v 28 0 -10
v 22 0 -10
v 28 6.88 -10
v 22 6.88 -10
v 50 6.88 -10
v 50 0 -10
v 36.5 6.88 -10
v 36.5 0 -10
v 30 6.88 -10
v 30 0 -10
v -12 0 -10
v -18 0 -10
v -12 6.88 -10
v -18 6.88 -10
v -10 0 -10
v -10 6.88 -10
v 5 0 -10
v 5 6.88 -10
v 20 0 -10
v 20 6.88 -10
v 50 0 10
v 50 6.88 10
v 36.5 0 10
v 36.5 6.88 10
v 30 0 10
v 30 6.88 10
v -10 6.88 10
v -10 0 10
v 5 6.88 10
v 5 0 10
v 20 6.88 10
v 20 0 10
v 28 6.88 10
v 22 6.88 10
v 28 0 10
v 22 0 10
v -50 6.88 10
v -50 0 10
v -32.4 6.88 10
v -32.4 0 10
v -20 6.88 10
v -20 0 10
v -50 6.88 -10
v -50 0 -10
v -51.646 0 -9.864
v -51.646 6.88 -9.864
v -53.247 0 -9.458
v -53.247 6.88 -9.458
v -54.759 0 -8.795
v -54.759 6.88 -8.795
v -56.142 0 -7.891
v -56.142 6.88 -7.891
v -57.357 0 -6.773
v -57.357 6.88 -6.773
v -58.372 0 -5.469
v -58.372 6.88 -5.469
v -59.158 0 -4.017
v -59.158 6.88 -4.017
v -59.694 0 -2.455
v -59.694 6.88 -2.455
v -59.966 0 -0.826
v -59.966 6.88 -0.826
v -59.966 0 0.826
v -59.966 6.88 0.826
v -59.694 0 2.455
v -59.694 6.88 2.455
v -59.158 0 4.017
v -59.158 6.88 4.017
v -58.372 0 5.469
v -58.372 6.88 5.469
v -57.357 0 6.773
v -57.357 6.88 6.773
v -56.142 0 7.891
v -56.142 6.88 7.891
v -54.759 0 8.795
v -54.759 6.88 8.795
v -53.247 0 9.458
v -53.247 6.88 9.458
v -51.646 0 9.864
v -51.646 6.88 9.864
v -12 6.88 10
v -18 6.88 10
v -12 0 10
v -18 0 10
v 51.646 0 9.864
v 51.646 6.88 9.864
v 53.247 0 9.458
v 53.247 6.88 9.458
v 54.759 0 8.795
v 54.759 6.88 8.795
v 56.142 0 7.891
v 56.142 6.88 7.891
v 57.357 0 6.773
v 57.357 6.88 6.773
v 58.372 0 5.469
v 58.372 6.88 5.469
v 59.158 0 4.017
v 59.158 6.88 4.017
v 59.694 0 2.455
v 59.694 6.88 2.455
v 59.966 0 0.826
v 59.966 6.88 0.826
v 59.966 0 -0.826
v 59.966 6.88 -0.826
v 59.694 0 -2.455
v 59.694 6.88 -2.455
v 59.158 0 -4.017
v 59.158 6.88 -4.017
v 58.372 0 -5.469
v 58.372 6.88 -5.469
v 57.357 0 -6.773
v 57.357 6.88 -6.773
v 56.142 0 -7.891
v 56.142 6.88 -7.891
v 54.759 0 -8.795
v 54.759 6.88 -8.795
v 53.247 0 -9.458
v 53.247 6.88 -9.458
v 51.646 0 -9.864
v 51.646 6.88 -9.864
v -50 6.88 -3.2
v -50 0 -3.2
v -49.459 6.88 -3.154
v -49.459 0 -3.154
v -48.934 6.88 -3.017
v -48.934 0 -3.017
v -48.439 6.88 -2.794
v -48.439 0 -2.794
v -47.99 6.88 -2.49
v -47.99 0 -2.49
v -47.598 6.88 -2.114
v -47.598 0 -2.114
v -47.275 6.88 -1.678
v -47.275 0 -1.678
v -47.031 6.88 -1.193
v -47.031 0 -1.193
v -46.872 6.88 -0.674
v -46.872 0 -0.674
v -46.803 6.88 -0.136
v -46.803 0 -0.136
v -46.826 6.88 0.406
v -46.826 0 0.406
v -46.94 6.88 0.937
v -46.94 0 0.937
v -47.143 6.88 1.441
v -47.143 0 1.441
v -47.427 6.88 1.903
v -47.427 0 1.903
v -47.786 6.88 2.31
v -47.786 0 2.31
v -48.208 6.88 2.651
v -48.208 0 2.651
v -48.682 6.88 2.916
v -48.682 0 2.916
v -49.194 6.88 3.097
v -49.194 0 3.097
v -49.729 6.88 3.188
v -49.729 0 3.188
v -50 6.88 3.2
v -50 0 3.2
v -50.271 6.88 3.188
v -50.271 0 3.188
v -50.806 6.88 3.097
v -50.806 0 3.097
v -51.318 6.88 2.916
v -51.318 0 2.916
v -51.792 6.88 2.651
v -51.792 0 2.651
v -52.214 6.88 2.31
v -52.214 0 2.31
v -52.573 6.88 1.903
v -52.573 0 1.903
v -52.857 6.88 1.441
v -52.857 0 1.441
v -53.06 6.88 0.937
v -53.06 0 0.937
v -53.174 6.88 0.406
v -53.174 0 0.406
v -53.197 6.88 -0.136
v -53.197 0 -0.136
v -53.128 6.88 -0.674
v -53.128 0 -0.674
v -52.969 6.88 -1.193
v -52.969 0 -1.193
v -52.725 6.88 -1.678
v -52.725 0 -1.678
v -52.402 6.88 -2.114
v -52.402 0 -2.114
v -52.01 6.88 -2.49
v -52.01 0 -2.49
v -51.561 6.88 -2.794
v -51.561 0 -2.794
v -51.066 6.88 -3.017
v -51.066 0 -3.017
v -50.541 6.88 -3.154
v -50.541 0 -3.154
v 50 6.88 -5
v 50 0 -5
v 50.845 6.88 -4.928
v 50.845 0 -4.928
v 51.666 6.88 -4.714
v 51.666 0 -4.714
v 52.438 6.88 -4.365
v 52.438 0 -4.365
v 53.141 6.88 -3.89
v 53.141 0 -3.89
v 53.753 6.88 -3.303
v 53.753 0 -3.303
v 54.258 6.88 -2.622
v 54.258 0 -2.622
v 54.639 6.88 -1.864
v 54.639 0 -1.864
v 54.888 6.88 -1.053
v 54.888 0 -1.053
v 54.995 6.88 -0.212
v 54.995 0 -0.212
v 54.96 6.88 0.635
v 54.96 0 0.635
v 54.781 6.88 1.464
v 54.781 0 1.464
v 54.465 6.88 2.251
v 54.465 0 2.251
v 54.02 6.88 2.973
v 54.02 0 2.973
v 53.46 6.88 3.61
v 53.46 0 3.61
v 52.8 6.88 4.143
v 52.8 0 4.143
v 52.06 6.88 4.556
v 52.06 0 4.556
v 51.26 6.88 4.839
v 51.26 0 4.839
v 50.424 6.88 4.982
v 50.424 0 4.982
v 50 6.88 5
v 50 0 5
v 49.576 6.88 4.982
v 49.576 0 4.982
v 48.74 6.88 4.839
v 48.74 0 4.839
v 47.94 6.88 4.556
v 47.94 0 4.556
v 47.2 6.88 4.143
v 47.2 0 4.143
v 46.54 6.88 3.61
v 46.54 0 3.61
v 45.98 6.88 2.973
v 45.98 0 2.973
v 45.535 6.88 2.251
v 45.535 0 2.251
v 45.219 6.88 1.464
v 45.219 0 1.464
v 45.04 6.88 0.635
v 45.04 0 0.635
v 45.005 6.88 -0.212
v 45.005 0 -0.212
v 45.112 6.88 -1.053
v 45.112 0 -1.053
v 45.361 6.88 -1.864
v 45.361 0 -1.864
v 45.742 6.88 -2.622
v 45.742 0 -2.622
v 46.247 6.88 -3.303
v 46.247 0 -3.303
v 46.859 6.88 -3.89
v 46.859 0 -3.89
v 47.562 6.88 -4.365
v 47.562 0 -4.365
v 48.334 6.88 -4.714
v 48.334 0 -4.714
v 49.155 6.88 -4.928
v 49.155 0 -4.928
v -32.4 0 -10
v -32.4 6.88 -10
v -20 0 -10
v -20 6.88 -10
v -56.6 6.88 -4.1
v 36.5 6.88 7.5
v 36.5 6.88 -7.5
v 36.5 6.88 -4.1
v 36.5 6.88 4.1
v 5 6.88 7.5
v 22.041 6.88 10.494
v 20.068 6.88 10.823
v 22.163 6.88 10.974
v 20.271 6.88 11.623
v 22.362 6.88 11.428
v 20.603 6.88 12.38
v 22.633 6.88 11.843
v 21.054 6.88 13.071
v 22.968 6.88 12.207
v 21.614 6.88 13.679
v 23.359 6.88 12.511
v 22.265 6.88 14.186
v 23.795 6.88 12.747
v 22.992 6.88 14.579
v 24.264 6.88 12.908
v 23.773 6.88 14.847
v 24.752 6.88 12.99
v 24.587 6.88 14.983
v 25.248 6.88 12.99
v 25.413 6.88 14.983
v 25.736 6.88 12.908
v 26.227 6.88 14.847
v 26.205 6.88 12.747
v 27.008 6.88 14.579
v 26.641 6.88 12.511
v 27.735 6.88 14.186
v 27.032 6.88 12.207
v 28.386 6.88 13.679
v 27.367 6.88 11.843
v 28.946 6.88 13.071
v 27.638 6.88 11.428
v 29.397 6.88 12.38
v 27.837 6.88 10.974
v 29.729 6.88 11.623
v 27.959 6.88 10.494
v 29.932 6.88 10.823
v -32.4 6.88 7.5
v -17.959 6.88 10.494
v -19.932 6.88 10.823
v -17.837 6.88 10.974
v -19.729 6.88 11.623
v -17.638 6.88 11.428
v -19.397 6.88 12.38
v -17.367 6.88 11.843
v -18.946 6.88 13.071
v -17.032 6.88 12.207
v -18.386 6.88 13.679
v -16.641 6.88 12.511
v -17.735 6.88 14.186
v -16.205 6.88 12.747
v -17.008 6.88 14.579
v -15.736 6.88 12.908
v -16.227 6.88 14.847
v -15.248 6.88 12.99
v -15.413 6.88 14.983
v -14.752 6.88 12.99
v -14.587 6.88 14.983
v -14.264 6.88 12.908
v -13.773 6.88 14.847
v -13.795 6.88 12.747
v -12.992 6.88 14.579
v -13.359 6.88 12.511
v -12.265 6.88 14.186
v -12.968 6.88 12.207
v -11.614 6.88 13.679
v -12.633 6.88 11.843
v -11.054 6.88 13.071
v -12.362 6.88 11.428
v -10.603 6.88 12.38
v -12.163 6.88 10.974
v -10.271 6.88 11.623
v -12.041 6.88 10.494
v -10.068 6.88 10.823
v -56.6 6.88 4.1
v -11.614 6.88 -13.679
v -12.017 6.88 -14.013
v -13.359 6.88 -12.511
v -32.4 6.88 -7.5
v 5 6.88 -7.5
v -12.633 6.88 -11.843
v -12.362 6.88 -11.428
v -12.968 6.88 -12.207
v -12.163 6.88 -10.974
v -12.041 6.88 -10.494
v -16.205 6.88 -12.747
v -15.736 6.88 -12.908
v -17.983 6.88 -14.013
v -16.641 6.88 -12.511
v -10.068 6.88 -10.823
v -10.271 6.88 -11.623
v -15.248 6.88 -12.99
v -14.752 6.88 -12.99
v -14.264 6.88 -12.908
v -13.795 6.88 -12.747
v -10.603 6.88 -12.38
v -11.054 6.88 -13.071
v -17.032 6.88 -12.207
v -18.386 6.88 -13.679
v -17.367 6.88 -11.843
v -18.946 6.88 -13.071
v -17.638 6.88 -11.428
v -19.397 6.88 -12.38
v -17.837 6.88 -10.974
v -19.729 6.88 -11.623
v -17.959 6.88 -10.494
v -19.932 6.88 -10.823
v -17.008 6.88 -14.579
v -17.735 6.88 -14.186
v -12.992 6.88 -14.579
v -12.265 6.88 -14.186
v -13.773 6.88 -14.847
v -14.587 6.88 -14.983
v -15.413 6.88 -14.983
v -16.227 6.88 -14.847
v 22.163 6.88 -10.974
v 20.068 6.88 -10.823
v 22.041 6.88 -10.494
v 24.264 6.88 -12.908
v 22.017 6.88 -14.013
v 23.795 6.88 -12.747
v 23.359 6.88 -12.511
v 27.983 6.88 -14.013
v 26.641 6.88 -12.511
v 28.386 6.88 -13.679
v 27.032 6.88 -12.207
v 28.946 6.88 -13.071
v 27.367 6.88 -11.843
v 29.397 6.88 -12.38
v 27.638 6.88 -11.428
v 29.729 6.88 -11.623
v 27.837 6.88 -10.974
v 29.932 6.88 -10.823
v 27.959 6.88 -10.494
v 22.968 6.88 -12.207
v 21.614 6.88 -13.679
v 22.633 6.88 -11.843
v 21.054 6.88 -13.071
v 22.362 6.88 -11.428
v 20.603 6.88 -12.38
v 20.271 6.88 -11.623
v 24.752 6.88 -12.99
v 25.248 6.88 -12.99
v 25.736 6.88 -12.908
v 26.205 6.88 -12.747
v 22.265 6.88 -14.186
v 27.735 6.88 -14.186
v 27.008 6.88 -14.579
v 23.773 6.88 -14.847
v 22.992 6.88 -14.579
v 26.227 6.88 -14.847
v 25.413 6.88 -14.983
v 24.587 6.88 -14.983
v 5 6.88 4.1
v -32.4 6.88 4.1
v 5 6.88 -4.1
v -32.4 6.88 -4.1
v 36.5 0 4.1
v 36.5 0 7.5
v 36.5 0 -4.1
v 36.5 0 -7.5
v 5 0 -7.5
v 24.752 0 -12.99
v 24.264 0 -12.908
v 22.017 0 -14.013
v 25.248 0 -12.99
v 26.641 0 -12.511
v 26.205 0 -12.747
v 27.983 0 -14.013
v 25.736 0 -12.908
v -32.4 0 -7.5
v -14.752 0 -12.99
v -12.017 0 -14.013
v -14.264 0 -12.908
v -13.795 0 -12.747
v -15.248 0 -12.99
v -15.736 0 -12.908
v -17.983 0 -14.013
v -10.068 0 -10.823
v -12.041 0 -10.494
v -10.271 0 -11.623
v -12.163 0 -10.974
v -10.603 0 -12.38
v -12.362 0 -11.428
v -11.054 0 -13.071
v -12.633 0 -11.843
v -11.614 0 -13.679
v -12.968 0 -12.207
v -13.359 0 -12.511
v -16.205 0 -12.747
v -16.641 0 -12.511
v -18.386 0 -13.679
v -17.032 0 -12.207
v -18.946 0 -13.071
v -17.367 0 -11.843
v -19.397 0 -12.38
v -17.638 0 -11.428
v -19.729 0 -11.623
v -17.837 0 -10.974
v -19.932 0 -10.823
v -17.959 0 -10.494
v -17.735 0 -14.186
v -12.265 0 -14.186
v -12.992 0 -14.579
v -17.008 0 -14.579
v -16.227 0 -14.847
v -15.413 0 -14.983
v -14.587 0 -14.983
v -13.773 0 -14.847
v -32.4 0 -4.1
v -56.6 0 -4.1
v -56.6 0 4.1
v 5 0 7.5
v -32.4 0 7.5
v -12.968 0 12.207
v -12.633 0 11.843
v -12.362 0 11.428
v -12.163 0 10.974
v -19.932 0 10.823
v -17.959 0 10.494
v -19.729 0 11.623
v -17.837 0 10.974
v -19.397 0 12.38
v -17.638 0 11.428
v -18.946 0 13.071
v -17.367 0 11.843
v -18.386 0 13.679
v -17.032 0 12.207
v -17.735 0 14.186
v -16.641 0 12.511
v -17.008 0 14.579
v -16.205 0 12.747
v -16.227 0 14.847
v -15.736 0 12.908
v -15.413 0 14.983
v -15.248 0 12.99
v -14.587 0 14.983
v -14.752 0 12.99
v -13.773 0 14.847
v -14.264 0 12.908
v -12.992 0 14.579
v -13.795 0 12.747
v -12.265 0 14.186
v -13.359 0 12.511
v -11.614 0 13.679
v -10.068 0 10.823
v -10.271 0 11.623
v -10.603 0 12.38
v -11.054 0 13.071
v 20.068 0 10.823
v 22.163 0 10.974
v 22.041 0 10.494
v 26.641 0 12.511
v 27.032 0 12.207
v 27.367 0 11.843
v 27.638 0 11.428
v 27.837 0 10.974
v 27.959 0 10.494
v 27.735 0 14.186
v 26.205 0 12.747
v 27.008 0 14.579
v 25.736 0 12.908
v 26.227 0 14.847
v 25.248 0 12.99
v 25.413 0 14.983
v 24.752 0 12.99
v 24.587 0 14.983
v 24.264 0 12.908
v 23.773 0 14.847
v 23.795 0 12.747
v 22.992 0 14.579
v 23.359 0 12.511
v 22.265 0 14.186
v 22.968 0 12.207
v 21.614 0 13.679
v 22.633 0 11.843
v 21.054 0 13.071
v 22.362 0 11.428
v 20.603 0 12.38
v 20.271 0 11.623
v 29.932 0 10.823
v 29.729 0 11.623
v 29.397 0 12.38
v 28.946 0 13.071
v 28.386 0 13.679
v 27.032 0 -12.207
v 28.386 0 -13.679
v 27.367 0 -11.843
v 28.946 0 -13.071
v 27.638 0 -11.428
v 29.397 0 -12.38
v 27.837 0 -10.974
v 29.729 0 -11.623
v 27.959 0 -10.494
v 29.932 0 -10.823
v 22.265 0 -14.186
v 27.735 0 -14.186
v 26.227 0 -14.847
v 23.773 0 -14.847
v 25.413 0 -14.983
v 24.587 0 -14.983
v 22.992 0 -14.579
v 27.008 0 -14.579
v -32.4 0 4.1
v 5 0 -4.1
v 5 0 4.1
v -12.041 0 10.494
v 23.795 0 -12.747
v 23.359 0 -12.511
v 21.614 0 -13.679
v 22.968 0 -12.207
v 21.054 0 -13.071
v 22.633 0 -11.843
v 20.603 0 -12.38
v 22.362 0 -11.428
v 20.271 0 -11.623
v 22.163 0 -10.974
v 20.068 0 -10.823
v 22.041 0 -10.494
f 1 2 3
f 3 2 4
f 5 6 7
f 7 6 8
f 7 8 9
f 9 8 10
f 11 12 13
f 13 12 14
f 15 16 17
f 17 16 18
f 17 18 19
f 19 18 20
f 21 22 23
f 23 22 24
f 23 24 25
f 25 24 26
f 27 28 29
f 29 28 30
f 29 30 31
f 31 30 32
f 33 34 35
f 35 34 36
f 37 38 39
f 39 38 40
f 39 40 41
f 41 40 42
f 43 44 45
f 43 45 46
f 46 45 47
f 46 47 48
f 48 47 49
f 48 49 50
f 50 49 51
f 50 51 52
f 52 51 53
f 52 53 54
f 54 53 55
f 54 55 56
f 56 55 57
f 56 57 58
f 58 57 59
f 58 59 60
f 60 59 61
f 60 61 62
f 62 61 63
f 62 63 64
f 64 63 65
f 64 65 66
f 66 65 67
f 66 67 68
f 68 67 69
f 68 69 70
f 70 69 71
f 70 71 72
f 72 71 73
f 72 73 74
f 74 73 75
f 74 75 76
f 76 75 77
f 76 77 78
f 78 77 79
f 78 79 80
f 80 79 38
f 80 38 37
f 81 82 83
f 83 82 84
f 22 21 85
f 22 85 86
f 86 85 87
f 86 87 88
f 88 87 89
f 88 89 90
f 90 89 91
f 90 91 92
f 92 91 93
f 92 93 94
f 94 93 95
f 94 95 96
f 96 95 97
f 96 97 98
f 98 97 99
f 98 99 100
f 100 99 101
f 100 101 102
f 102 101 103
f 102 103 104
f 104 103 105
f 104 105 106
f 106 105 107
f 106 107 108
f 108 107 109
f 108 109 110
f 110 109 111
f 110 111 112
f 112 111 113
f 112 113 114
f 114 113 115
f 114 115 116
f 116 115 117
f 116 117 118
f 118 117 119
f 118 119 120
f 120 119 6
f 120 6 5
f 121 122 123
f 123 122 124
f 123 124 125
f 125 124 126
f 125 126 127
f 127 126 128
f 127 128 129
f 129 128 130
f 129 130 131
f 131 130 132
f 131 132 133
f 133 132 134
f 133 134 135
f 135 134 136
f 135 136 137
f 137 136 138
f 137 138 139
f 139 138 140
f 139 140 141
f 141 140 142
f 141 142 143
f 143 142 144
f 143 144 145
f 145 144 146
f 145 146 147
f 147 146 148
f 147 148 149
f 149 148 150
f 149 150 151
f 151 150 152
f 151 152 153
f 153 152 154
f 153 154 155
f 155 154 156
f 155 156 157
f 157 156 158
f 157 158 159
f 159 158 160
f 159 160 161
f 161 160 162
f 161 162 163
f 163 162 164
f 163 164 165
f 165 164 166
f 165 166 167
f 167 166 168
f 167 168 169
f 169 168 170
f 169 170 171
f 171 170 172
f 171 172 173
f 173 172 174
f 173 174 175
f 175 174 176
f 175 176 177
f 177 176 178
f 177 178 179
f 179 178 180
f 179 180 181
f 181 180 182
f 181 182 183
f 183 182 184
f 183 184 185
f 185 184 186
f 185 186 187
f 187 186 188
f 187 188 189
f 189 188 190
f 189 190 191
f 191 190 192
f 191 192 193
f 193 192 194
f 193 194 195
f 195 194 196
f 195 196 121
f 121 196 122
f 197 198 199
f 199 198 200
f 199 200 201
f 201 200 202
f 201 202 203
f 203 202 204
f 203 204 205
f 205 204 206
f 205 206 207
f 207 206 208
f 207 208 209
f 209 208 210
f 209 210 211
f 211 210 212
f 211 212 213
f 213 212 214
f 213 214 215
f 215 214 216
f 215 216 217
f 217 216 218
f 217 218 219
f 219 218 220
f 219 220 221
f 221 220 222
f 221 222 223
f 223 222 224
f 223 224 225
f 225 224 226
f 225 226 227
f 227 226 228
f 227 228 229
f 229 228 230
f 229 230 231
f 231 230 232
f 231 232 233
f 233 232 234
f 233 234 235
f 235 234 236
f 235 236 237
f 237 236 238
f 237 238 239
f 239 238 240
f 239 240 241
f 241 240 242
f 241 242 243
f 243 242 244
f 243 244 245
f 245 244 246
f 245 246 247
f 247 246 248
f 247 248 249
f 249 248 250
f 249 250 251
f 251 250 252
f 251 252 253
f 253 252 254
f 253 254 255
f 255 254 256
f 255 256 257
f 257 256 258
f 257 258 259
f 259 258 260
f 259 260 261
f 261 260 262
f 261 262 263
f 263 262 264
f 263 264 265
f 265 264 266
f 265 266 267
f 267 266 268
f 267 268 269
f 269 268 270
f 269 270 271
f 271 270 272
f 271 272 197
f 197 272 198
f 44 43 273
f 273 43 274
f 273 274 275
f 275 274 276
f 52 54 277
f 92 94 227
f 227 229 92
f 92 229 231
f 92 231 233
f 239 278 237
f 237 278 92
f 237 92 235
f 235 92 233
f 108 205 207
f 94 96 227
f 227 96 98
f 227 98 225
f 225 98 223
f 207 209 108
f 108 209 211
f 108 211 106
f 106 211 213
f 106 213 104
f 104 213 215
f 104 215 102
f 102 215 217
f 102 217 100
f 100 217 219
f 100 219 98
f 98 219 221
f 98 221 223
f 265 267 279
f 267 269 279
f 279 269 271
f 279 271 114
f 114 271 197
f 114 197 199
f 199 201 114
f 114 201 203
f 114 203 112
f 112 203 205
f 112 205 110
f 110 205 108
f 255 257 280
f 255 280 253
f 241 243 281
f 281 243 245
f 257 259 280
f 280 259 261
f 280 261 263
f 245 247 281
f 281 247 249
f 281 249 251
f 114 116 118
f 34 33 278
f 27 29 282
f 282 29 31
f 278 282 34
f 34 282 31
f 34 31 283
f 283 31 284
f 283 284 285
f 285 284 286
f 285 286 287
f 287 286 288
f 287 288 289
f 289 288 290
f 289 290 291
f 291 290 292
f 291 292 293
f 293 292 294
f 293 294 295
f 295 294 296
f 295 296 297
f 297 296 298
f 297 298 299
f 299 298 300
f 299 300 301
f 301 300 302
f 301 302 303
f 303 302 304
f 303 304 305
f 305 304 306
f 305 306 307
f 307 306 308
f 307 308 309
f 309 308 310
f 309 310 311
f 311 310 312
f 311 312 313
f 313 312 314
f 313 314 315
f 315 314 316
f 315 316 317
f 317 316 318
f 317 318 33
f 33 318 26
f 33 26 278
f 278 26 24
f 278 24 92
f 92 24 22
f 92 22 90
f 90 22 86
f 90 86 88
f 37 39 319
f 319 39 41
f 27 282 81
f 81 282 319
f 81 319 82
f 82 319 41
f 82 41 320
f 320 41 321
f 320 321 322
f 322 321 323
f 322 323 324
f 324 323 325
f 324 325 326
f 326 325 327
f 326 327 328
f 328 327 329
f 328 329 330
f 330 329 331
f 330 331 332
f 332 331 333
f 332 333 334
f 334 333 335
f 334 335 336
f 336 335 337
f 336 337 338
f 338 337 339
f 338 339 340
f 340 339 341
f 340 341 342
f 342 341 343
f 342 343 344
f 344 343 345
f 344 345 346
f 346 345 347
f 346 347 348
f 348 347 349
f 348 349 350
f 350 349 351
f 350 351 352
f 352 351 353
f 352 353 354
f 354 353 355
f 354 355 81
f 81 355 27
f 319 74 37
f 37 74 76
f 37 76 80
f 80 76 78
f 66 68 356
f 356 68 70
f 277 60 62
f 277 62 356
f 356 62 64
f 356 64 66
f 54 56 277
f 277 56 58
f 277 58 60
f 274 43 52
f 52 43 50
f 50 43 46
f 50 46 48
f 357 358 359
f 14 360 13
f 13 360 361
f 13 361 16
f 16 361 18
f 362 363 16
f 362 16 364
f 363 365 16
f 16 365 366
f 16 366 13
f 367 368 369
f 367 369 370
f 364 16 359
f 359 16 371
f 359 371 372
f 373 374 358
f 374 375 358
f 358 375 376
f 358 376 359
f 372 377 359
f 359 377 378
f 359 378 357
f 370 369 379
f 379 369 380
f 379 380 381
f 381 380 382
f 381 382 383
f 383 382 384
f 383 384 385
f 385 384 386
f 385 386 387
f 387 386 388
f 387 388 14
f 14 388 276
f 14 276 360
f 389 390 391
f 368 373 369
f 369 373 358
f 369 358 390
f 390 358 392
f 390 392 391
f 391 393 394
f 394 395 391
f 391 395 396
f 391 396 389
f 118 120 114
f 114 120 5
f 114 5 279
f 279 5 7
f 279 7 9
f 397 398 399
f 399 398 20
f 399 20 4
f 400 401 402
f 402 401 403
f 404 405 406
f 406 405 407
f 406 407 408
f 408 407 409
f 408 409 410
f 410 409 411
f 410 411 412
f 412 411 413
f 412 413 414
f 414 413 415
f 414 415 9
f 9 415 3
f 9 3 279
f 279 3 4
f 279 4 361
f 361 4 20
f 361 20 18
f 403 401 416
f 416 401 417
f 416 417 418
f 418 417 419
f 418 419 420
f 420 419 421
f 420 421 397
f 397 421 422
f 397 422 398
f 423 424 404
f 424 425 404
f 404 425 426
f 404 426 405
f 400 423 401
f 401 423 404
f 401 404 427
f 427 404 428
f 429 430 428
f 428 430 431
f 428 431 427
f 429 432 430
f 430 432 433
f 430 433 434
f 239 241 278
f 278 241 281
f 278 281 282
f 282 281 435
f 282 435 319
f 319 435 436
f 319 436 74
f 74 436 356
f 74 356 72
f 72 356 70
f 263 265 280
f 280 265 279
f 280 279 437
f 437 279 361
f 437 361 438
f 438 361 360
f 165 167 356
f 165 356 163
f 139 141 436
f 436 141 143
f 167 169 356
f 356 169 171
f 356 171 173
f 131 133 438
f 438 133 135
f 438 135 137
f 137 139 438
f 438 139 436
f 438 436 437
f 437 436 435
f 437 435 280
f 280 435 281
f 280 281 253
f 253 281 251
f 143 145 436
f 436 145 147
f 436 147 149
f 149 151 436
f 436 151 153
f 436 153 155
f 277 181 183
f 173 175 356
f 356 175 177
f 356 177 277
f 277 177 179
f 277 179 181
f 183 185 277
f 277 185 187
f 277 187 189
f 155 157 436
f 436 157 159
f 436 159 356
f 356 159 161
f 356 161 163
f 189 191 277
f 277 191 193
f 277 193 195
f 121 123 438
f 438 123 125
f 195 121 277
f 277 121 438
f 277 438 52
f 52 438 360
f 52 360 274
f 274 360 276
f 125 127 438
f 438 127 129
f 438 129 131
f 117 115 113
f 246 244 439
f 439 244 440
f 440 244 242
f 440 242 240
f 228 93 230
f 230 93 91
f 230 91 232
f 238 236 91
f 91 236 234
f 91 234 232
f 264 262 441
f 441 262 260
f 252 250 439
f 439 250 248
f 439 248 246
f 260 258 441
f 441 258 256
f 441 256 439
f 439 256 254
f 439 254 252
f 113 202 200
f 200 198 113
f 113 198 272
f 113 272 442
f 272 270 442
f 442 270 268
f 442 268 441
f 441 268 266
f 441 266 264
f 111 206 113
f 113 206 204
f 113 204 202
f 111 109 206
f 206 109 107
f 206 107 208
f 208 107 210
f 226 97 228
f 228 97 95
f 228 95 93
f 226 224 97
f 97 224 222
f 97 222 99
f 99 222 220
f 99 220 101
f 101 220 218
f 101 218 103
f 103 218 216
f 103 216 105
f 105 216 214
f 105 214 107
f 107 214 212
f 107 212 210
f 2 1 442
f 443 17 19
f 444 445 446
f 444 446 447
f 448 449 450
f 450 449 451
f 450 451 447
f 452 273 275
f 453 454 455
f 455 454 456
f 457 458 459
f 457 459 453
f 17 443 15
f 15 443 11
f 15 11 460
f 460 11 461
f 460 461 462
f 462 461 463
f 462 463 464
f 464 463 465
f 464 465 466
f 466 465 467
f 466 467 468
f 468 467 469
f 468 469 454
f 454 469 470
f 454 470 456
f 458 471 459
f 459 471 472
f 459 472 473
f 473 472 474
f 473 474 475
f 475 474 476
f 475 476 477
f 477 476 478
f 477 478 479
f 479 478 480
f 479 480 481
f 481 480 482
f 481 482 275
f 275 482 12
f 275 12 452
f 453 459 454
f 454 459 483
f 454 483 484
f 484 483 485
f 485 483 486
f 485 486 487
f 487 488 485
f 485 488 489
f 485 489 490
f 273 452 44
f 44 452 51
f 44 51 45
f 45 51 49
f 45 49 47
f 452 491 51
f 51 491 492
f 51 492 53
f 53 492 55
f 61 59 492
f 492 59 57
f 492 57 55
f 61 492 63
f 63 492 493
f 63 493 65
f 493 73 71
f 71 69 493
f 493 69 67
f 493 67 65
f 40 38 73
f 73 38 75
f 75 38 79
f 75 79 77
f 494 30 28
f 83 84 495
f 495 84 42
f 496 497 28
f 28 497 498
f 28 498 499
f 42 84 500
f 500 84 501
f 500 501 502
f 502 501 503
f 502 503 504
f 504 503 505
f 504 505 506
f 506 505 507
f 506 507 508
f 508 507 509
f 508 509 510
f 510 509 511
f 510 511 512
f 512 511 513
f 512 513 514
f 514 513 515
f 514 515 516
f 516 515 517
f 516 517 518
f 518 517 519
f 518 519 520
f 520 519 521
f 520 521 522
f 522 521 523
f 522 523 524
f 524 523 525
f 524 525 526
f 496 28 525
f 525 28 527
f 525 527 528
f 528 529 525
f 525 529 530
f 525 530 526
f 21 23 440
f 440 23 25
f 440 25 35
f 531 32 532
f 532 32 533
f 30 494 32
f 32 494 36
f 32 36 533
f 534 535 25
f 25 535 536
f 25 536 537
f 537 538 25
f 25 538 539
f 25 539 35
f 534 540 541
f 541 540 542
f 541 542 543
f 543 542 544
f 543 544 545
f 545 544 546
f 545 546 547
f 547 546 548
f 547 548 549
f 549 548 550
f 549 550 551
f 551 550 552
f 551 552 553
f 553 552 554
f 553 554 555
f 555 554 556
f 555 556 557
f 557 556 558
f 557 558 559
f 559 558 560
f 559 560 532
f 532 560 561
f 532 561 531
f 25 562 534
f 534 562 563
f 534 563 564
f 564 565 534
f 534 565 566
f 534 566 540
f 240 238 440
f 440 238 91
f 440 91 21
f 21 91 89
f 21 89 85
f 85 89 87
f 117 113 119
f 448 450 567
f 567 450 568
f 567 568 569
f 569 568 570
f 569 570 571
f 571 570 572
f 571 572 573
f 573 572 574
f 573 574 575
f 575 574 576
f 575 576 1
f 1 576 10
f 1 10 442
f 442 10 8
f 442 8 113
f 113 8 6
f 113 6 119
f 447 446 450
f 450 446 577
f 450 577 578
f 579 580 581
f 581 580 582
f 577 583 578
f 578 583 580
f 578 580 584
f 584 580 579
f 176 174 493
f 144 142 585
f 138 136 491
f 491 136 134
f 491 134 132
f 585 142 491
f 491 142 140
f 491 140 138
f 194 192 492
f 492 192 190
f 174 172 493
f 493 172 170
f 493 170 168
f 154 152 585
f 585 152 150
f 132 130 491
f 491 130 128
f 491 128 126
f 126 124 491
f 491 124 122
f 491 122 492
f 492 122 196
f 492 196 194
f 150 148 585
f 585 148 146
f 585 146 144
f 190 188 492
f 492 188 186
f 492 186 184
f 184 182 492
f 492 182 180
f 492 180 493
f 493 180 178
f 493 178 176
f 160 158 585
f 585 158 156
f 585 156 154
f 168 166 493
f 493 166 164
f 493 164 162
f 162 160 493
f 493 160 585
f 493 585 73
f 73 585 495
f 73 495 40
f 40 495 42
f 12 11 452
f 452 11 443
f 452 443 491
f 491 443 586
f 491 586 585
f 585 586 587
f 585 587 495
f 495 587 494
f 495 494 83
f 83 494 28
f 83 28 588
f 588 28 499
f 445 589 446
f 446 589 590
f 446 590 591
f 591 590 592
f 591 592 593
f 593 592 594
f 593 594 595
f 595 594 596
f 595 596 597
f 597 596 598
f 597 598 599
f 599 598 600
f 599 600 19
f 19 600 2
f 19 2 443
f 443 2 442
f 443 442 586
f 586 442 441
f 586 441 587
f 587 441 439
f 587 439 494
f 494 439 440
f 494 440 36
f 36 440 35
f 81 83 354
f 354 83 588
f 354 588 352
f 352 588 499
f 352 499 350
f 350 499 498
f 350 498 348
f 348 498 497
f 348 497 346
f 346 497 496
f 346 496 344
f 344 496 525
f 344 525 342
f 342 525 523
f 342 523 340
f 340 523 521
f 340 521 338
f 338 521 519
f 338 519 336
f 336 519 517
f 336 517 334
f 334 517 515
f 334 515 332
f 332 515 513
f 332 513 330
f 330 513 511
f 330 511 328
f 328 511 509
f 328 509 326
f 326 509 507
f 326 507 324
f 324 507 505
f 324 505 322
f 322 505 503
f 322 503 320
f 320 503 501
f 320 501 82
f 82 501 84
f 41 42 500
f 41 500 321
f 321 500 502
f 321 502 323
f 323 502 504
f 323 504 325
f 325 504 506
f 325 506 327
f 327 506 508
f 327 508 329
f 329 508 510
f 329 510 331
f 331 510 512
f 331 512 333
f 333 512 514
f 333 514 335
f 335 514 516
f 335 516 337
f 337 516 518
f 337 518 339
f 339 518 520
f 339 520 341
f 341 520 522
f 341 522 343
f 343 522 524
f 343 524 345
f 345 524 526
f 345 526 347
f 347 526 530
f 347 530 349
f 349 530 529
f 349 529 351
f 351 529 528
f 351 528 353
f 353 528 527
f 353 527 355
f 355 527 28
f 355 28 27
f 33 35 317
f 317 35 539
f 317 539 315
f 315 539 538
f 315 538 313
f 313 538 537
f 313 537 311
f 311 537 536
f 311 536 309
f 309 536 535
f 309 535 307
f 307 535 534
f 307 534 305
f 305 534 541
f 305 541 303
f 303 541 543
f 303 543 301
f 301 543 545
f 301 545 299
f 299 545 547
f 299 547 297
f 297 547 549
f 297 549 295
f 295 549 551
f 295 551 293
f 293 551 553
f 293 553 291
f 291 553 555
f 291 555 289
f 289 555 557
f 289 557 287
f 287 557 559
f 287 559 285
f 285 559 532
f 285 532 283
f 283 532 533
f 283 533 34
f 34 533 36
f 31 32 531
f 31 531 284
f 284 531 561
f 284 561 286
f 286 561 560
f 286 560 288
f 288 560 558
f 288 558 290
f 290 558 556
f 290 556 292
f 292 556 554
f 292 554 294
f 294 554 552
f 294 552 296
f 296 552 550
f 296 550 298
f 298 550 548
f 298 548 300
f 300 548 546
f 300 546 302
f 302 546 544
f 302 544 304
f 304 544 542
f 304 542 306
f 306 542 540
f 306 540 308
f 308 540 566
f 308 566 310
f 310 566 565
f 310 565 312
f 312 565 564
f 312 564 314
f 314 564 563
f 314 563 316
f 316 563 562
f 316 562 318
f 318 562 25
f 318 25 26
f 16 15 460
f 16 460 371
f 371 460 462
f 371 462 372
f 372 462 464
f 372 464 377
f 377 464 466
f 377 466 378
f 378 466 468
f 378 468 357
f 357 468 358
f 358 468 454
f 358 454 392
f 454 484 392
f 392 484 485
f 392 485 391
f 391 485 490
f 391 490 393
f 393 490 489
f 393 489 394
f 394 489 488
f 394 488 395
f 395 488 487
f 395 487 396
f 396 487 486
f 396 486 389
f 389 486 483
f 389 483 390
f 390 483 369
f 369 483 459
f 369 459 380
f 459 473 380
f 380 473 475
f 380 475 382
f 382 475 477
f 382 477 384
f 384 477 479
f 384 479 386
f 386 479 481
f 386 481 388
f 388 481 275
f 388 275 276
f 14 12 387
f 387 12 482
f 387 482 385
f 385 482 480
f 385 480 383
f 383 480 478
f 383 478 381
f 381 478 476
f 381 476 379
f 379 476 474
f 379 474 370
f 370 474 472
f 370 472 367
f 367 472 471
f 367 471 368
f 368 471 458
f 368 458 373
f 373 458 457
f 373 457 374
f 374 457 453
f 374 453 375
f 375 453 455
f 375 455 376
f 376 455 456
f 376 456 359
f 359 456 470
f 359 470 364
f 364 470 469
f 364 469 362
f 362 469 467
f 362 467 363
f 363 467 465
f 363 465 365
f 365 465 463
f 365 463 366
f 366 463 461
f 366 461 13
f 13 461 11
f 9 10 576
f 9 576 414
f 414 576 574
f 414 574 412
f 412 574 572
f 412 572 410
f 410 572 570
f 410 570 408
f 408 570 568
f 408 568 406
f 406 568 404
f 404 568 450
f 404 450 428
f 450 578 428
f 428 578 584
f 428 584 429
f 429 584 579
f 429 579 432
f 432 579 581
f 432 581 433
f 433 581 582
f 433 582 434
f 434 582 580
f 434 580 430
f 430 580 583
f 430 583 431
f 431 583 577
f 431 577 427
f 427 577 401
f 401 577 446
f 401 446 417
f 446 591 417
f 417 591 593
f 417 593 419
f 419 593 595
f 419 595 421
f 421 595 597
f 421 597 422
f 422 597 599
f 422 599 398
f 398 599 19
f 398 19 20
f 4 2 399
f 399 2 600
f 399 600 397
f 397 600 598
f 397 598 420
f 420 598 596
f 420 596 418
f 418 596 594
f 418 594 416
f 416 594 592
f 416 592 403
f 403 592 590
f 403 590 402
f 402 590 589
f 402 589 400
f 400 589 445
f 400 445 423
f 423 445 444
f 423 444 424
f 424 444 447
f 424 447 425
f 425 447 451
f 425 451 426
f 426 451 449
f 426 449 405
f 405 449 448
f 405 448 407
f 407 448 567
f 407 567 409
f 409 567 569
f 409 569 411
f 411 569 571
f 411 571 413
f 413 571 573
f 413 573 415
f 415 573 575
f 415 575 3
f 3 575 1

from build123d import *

# Parameters (mm, degrees)
CROQUIS1_R              = 3.2
CROQUIS1_R_2            = 5
SALIENTE_EXTRUIR2_DEPTH = 6.88
SALIENTE_EXTRUIR3_DEPTH = 6.88
MATRIZL1_COUNT          = 2
MATRIZL1_PITCH          = 40
SIMETR_A1_COPY_1_DEPTH  = 6.88


with BuildPart() as part:
    # Croquis1 → Saliente-Extruir2 (new body)
    with BuildSketch(Plane(origin=(0, 0, 0), x_dir=(1, 0, 0), z_dir=(0, 1, 0))):
        with BuildLine():
            Line((-50, -10), (50, -10))
            ThreePointArc((50, -10), (60, 0), (50, 10))
            Line((50, 10), (-50, 10))
            ThreePointArc((-50, 10), (-60, 0), (-50, -10))
        make_face()
        with Locations(Location((-50, 0, 0), (0, 0, 270))):
            Circle(CROQUIS1_R, mode=Mode.SUBTRACT)
        with Locations(Location((50, 0, 0), (0, 0, 270))):
            Circle(CROQUIS1_R_2, mode=Mode.SUBTRACT)
    extrude(amount=SALIENTE_EXTRUIR2_DEPTH)

    # Croquis3 → Saliente-Extruir3 (add)
    with BuildSketch(Plane(origin=(0, 0, 0), x_dir=(1, 0, 0), z_dir=(0, 1, 0))):
        with BuildLine():
            Line((-20, -10), (-18, -10))
            ThreePointArc((-18, -10), (-15, -13), (-12, -10))
            Line((-12, -10), (-10, -10))
            ThreePointArc((-10, -10), (-15, -15), (-20, -10))
        make_face()
    saliente_extruir3 = extrude(amount=SALIENTE_EXTRUIR3_DEPTH)

    # MatrizL1: Saliente-Extruir3 ×2
    with Locations(*[(i * MATRIZL1_PITCH, 0, 0) for i in range(1, MATRIZL1_COUNT)]):
        add(saliente_extruir3)

    # Simetría1: Saliente-Extruir3 across plane
    add(saliente_extruir3.mirror(Plane.XY))

    # Simetría1 copy 1 sketch → Simetría1 copy 1 (add)
    with BuildSketch(Plane(origin=(40, 0, 0), x_dir=(1, 0, 0), z_dir=(0, 1, 0))):
        with BuildLine():
            Line((-20, 10), (-18, 10))
            ThreePointArc((-18, 10), (-15, 13), (-12, 10))
            Line((-12, 10), (-10, 10))
            ThreePointArc((-10, 10), (-15, 15), (-20, 10))
        make_face()
    extrude(amount=SIMETR_A1_COPY_1_DEPTH)


solid = part.part
